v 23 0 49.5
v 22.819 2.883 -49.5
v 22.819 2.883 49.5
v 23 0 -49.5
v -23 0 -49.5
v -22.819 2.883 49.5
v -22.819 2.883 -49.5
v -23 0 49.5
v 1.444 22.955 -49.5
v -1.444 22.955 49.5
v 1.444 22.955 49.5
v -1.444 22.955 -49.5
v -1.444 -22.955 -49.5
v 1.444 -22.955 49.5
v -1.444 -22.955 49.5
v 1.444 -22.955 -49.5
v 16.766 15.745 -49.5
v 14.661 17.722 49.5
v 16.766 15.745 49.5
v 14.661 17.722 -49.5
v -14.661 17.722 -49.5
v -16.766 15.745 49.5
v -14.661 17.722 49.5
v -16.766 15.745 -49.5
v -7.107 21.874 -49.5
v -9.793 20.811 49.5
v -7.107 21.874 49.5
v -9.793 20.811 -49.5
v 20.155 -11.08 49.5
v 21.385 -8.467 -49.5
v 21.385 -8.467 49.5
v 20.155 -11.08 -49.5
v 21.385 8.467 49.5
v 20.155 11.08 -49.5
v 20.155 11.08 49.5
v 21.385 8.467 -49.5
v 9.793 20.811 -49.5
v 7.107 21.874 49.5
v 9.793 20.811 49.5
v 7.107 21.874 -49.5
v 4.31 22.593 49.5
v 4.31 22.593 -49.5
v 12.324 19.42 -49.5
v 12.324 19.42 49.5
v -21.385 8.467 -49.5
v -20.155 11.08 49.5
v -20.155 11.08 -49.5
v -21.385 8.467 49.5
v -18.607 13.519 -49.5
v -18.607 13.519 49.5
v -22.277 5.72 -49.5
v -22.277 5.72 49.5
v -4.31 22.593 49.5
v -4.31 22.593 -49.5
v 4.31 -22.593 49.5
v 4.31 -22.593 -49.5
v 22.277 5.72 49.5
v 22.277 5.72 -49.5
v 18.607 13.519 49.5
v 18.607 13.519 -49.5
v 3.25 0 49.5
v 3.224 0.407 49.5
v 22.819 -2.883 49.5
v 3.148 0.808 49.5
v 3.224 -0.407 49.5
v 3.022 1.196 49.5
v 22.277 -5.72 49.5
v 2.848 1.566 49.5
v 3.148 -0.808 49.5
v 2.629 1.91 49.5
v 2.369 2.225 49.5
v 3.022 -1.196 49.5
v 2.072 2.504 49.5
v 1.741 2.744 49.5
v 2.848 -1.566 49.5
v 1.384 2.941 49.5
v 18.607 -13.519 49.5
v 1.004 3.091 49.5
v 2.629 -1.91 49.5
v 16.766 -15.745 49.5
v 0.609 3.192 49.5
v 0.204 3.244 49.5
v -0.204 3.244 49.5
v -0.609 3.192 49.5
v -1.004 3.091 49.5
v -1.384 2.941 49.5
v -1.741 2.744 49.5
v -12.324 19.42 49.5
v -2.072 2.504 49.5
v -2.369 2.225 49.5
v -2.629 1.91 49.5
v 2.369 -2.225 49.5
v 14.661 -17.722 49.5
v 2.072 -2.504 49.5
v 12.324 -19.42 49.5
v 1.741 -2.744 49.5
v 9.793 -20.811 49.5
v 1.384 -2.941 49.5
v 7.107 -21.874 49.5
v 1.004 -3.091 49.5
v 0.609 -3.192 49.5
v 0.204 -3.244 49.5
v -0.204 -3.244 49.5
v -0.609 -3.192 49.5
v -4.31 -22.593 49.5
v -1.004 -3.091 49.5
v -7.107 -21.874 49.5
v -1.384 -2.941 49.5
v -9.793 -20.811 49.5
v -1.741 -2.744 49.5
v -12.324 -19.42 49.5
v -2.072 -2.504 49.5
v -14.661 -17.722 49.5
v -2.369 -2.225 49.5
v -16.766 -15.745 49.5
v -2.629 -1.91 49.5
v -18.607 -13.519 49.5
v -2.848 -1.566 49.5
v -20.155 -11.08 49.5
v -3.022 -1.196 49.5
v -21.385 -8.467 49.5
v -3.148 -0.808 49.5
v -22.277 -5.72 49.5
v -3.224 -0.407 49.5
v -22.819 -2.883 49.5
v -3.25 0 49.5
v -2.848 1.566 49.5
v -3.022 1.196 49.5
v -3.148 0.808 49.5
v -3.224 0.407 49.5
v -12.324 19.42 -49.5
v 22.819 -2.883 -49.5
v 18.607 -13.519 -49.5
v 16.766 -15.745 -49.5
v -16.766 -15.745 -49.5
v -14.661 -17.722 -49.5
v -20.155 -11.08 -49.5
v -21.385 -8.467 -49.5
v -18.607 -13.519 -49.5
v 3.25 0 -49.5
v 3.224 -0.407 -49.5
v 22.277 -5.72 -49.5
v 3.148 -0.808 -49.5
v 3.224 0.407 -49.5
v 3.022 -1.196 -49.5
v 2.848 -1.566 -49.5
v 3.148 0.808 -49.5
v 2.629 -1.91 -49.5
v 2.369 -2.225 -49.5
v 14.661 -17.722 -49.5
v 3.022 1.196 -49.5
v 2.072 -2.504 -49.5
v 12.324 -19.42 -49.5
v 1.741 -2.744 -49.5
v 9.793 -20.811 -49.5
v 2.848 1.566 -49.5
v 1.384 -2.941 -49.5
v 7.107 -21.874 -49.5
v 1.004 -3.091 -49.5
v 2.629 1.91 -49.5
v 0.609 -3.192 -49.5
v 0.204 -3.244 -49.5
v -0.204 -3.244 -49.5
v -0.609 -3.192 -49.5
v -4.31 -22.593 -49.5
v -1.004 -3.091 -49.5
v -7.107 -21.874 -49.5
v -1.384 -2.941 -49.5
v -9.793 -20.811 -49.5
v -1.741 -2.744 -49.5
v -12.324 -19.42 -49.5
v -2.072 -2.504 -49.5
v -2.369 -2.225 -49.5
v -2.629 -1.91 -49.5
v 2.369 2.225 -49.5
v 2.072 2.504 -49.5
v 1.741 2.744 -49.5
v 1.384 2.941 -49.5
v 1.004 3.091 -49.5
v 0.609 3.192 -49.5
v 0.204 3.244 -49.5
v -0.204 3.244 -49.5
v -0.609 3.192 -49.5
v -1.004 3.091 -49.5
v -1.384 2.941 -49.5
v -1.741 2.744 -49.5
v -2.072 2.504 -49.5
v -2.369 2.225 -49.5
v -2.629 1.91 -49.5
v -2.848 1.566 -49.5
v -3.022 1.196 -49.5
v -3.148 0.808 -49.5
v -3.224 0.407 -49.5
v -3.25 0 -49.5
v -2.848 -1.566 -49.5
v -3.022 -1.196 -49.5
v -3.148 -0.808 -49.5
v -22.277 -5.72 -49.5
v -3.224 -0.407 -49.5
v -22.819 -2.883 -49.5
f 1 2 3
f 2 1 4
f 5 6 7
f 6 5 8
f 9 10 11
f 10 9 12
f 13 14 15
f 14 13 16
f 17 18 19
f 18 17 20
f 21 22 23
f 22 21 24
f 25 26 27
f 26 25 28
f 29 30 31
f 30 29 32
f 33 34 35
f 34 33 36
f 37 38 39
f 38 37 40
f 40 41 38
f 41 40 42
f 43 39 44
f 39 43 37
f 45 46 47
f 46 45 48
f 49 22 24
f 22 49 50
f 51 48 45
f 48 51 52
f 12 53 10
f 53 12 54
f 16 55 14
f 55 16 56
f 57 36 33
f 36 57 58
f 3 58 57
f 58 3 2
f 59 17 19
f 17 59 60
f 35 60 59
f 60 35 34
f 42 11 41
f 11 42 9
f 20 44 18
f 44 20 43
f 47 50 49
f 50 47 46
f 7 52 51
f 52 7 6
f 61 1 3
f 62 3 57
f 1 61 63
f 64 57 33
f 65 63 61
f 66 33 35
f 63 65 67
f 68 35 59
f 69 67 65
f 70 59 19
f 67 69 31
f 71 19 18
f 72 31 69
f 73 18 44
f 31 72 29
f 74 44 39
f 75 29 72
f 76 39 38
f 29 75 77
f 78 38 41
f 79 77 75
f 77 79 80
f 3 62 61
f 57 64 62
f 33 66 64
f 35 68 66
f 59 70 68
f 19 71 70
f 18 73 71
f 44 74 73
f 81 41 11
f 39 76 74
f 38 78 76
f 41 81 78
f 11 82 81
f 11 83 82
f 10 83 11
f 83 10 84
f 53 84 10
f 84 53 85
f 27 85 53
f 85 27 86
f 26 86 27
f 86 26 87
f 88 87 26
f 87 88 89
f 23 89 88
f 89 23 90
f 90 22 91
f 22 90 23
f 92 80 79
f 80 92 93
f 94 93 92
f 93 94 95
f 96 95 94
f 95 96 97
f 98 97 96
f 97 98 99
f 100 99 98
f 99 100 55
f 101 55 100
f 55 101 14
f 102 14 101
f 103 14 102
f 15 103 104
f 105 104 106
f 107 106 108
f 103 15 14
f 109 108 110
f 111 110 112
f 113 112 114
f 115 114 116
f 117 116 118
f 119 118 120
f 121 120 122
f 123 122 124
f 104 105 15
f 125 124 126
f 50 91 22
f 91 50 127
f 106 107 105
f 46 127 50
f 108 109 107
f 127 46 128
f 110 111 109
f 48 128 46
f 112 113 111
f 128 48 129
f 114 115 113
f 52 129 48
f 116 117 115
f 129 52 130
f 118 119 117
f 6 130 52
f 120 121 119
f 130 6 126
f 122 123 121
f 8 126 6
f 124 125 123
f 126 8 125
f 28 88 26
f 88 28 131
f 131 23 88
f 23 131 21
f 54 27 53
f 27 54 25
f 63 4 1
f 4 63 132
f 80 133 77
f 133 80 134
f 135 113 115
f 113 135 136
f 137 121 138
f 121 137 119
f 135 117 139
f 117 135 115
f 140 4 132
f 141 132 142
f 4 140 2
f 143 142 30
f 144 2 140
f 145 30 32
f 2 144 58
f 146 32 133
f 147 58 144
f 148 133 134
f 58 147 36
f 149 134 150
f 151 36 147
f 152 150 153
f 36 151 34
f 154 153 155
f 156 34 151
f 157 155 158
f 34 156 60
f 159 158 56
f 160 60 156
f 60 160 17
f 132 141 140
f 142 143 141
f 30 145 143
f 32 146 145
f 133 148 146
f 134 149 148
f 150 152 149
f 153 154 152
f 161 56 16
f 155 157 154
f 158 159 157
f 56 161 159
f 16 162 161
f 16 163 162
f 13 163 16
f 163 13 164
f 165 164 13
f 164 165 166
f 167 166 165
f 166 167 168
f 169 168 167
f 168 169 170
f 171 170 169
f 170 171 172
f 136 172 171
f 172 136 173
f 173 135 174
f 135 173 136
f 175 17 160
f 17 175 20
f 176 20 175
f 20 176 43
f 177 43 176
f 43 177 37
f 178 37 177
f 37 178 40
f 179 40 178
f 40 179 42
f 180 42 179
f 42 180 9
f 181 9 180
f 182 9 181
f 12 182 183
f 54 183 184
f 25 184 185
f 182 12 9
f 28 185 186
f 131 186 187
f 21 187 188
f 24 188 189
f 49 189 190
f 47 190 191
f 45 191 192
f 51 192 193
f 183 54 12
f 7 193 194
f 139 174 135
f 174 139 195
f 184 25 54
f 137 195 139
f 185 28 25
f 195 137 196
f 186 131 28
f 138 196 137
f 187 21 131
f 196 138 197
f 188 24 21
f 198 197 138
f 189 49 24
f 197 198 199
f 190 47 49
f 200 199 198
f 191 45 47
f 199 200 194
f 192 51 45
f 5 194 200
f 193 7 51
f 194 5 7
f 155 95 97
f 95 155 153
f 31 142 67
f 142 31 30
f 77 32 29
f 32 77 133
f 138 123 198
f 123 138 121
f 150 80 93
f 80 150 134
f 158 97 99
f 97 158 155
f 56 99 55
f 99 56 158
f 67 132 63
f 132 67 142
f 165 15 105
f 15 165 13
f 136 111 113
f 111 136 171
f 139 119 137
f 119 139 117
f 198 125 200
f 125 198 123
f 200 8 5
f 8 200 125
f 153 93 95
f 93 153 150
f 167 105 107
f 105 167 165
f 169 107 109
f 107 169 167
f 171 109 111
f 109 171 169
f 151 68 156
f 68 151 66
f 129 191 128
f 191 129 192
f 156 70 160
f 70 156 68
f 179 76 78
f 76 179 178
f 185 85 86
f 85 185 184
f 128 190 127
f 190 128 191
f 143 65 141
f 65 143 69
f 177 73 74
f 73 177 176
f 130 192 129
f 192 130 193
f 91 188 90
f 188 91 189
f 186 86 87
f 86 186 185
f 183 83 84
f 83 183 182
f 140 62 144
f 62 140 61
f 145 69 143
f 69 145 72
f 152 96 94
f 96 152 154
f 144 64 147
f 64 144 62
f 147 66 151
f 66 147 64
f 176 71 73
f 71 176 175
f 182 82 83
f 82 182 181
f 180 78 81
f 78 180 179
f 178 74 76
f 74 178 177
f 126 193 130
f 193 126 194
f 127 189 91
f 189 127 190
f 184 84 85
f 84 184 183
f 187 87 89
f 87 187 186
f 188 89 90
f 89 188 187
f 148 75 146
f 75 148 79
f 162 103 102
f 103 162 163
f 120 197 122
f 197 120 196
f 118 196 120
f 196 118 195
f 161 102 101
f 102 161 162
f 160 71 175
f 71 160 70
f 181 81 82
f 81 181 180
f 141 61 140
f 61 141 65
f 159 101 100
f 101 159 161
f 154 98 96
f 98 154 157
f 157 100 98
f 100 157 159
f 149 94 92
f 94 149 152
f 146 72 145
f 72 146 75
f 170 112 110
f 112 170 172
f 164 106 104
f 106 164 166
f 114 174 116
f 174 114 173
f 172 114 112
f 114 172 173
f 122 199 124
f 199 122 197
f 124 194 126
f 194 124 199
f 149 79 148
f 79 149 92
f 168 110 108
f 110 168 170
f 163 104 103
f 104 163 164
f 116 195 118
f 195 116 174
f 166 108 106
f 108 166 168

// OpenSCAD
$fn = 50;


difference() {
	union() {
		translate(v = [0, 0, -49.5000000000]) {
			cylinder(h = 99, r = 23.0000000000);
		}
	}
	union() {
		translate(v = [0, 0, -100.0000000000]) {
			cylinder(h = 200, r = 3.2500000000);
		}
	}
}
